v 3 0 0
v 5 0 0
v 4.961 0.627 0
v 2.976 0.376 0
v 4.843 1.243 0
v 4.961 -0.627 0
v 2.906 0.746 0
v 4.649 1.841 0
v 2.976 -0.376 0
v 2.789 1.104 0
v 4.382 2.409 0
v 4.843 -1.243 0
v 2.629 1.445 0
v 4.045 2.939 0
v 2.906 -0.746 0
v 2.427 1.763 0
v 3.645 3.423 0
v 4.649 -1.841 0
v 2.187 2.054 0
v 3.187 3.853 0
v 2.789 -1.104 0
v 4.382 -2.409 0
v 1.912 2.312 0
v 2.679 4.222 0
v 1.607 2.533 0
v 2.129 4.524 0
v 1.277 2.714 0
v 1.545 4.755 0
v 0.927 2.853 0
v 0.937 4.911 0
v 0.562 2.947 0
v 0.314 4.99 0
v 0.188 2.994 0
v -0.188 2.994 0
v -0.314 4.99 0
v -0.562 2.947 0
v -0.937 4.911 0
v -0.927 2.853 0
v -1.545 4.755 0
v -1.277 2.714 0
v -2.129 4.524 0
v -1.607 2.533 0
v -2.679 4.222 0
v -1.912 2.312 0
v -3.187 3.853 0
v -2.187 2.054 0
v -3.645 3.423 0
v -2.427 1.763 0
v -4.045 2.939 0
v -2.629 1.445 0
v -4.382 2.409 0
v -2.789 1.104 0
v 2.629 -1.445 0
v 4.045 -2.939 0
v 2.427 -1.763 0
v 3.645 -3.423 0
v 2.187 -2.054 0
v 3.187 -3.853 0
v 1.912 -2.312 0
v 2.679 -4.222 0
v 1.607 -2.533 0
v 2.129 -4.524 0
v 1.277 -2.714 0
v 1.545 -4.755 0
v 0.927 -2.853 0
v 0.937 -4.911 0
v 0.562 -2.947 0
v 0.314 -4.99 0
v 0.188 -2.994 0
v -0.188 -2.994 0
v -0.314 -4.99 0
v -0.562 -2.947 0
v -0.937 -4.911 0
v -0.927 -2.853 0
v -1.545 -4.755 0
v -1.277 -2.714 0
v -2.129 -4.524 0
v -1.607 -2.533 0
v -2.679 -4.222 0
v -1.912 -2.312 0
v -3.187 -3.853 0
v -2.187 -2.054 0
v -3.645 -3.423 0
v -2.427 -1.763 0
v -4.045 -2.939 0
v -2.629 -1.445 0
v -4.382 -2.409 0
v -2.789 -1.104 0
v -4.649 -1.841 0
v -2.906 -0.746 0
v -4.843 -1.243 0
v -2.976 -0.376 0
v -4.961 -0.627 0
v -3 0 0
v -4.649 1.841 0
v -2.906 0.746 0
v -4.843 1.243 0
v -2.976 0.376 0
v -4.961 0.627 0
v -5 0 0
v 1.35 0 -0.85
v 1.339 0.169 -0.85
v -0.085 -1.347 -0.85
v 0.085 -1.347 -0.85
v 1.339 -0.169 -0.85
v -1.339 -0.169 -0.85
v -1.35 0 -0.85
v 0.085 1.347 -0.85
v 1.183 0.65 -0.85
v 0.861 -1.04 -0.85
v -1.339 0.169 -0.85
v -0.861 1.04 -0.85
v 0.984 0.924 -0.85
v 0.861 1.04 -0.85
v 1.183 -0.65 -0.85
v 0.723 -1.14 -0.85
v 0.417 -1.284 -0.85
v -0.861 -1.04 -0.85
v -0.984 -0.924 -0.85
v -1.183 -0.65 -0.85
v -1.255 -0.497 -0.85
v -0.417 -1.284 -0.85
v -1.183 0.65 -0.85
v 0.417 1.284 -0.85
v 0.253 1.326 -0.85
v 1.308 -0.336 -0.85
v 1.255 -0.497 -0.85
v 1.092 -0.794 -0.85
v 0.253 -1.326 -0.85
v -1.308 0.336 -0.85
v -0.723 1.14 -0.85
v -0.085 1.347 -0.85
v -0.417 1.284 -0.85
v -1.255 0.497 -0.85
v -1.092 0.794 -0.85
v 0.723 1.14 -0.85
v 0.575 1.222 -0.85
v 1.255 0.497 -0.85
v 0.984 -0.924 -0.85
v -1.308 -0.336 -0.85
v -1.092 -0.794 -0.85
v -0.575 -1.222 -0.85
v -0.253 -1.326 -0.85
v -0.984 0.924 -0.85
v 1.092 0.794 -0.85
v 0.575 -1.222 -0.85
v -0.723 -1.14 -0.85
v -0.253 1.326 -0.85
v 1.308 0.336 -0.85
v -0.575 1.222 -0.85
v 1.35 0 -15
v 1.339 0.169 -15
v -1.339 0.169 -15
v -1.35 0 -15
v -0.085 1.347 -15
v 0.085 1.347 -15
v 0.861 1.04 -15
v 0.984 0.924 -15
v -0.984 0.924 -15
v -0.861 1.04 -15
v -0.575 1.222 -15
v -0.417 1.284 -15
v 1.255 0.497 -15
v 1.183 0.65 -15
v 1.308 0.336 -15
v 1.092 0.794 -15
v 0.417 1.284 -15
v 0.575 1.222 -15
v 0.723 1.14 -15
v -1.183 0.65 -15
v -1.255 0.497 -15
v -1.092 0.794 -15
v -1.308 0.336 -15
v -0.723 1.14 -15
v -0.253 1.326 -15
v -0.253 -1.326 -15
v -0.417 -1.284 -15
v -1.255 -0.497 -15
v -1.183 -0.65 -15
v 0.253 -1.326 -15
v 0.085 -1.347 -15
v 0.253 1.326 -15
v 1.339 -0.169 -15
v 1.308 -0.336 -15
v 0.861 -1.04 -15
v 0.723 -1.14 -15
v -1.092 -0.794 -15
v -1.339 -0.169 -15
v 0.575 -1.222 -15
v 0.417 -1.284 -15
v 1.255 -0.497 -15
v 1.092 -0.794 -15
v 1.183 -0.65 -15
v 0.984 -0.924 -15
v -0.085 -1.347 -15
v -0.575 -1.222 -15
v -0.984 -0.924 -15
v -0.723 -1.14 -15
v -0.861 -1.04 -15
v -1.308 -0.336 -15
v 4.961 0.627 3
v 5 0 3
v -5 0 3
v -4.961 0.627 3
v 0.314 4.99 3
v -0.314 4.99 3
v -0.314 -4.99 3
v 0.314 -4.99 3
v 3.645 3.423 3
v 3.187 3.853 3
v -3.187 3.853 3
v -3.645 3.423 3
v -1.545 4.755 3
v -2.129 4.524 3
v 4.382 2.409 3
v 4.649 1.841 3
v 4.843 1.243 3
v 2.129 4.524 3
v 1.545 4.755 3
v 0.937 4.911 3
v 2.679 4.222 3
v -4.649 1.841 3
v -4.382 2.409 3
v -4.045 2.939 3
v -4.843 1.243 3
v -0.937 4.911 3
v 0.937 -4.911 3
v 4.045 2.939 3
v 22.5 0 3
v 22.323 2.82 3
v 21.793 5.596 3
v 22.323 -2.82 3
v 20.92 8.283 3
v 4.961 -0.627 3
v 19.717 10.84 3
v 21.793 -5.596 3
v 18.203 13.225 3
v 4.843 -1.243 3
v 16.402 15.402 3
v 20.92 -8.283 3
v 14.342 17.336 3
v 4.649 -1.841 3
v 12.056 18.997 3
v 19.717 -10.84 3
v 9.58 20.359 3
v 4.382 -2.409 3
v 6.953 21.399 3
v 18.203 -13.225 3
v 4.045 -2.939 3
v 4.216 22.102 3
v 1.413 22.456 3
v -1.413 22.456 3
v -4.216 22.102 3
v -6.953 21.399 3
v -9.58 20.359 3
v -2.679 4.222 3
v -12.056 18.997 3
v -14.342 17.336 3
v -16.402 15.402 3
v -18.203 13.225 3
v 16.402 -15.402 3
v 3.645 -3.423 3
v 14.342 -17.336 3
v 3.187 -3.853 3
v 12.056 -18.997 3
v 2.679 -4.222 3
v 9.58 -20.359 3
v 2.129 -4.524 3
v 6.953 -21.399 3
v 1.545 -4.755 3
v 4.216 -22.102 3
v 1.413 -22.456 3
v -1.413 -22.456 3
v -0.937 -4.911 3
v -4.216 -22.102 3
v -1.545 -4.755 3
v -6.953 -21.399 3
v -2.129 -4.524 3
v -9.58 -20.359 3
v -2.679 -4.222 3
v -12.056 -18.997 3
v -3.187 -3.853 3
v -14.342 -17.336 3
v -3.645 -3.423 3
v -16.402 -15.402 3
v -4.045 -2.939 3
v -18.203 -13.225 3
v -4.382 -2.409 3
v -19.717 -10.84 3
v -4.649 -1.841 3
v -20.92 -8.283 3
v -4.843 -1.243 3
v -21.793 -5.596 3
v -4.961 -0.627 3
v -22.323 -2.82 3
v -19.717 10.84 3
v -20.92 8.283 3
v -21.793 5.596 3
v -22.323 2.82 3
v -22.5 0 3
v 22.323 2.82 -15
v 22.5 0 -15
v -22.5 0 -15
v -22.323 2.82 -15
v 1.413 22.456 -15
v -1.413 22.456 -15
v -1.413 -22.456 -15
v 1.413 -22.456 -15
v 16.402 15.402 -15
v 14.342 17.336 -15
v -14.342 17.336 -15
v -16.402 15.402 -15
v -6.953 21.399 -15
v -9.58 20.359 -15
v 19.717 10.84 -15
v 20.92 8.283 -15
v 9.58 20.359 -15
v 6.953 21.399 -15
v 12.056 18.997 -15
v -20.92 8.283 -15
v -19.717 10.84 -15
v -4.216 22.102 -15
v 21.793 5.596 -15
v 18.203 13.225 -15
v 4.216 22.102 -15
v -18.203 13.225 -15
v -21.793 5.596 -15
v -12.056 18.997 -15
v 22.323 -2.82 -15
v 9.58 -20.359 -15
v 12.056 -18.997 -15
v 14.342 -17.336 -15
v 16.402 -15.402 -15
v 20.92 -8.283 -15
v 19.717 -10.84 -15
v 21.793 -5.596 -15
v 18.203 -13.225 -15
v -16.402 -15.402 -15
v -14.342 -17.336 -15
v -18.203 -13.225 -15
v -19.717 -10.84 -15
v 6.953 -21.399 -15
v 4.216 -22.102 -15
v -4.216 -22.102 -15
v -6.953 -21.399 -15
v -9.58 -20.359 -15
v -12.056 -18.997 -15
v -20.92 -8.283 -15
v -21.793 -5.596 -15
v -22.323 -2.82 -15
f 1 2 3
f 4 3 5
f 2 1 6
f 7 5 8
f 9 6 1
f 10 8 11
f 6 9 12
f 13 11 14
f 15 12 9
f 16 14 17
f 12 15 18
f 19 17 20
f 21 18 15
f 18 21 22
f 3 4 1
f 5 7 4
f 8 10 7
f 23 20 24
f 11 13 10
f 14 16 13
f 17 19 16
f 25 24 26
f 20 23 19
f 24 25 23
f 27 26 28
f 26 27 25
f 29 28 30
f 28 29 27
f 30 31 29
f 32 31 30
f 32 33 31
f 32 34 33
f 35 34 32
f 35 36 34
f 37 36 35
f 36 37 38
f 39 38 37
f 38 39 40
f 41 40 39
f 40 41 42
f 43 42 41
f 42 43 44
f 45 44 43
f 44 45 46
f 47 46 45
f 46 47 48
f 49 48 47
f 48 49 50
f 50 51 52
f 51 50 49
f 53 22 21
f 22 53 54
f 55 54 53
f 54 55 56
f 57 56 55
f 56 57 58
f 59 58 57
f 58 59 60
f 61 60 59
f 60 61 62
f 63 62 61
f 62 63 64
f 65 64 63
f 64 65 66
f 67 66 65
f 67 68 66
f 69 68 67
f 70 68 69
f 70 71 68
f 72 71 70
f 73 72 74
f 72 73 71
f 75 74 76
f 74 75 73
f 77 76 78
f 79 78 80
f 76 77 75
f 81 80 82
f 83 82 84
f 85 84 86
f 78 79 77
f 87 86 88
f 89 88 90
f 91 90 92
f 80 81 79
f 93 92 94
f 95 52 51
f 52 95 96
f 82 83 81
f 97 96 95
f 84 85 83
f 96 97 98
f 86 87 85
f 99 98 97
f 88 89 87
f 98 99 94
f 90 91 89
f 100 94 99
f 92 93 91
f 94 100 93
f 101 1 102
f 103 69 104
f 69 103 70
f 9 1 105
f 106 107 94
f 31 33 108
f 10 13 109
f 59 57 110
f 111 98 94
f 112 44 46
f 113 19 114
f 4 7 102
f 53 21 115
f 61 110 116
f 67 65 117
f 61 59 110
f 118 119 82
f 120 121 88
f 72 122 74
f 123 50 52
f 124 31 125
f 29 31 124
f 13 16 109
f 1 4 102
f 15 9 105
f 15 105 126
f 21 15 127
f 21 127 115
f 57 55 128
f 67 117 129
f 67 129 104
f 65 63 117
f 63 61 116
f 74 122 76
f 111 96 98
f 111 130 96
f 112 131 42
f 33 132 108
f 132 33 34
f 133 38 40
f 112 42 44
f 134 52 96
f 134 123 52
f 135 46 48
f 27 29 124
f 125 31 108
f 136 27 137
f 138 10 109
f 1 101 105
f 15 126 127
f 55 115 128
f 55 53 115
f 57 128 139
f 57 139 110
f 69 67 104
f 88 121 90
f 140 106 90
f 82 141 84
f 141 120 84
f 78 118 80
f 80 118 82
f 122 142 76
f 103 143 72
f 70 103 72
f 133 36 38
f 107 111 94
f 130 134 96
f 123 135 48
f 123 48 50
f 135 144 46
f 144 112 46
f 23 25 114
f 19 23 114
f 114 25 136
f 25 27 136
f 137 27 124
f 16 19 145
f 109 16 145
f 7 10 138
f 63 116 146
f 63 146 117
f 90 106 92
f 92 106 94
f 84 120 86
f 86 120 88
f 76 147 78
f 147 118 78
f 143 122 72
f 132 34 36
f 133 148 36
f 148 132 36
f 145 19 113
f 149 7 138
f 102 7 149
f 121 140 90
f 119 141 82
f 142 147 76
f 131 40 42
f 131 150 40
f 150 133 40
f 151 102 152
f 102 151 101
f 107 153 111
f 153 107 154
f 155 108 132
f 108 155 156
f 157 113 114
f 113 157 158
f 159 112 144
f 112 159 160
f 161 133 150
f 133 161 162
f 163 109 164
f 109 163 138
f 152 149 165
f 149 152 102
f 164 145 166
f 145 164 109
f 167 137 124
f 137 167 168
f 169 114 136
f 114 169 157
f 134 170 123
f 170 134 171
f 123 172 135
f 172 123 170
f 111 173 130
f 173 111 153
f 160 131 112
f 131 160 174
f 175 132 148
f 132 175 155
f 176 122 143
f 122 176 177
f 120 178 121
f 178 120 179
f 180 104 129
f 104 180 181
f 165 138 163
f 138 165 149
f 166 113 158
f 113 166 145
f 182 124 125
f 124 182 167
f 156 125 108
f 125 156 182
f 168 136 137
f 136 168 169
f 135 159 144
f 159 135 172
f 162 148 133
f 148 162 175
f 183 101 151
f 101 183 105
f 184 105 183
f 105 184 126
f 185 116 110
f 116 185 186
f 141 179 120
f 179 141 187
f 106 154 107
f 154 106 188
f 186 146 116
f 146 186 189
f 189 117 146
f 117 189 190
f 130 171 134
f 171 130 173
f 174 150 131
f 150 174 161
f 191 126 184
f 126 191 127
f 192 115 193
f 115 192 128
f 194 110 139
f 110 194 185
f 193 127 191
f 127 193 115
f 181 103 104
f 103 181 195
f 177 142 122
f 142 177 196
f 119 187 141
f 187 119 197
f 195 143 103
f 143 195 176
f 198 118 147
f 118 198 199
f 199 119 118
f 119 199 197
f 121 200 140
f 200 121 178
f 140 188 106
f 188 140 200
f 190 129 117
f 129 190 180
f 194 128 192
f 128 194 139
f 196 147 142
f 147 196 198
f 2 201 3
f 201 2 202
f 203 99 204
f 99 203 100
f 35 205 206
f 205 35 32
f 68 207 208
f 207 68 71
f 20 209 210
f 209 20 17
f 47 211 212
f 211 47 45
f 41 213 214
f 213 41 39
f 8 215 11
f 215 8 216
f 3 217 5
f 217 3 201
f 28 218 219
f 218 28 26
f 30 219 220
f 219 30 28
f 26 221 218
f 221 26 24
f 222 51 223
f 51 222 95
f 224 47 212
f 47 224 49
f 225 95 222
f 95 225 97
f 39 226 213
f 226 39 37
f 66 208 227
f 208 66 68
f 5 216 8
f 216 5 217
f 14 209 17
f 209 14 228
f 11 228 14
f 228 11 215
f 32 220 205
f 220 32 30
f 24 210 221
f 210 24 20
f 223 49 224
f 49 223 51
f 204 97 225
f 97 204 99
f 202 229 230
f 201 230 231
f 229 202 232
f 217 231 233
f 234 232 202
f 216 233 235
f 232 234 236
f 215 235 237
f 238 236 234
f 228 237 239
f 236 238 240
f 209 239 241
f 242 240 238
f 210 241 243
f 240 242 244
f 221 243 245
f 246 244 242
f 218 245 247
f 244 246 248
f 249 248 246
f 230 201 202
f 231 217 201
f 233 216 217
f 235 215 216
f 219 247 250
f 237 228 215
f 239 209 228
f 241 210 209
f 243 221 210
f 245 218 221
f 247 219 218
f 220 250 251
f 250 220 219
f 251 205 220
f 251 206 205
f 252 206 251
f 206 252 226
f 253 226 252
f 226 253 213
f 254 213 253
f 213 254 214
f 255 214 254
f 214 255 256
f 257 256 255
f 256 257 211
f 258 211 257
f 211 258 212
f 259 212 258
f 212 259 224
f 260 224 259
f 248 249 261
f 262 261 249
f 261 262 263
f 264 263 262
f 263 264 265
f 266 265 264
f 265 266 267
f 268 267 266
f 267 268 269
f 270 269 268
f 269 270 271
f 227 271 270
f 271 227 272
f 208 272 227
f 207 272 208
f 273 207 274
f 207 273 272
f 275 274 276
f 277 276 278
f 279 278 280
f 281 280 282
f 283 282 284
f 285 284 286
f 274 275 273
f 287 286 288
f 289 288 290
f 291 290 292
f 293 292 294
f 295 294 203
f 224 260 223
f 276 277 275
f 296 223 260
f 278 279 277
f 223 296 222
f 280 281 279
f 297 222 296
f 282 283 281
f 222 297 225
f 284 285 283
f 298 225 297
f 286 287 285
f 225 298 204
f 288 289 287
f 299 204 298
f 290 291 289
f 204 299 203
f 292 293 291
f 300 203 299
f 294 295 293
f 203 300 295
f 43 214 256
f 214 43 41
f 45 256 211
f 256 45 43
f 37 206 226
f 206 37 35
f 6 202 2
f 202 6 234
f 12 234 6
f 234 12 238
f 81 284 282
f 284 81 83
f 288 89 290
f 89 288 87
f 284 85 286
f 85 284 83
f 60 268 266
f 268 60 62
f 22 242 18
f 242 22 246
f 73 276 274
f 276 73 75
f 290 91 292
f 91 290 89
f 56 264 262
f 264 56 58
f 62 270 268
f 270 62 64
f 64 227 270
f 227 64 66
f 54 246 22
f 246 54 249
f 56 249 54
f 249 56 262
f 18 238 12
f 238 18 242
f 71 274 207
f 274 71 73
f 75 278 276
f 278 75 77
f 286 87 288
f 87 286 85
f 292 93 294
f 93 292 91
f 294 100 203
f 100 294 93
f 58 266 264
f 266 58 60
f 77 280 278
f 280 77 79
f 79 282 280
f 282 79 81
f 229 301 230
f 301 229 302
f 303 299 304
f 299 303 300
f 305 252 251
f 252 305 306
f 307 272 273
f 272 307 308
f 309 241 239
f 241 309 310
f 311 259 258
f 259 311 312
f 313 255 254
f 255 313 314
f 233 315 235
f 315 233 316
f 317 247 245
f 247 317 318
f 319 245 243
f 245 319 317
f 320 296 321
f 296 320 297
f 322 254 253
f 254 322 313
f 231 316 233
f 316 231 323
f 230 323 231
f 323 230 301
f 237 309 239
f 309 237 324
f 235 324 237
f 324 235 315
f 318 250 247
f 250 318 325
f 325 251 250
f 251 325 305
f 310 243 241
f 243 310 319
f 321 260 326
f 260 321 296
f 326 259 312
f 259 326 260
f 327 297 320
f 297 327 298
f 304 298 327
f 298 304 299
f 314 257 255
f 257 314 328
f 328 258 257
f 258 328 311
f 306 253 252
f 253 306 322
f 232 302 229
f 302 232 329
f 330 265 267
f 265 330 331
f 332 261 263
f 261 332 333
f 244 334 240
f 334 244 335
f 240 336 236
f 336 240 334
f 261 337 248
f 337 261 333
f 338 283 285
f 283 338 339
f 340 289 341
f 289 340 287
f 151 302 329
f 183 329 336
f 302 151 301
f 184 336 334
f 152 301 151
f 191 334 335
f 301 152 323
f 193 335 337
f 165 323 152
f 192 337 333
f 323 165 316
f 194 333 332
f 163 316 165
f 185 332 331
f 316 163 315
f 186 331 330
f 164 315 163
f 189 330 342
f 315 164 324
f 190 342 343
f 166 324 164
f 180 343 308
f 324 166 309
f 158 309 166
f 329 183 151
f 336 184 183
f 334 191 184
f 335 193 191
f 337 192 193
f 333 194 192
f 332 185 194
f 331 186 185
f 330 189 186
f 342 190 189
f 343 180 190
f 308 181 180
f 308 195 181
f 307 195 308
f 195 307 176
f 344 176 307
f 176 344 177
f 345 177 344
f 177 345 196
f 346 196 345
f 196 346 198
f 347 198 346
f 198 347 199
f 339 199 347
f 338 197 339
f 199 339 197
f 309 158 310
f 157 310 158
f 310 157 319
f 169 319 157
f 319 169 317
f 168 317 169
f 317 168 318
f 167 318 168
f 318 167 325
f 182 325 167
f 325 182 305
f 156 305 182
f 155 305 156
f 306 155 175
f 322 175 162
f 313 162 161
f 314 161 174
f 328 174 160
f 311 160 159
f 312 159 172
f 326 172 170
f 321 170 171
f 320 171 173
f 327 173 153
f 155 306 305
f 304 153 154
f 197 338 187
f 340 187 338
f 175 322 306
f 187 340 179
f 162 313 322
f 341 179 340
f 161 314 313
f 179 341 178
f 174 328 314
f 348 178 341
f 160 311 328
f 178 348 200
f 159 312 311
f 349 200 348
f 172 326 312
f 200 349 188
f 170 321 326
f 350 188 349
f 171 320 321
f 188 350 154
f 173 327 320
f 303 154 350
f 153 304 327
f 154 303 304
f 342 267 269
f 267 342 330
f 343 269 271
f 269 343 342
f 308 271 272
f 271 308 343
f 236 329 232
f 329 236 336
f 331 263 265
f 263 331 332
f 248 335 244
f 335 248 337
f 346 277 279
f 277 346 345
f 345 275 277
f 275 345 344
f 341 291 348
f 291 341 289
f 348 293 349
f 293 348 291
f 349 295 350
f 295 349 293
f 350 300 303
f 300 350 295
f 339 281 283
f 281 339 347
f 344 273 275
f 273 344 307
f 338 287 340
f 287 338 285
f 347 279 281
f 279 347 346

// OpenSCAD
$fn = 50;

difference() {
	union() {
		translate(v = [0, 0, -15.0]) {
			cylinder(h = 18, r = 22.5);
		}
	}
	union() {
		translate(v = [0, 0, 0]) {
			rotate(a = [0, 0, 0]) {
				difference() {
					union() {
						translate(v = [0, 0, -18.0]) {
							cylinder(h = 18, r = 1.0);
						}
						translate(v = [0, 0, -0.85]) {
							cylinder(h = 0.85, r1 = 1.35, r2 = 3.0);
						}
						translate(v = [0, 0, -18.0]) {
							cylinder(h = 18, r = 1.35);
						}
						translate(v = [0, 0, -18.0]) {
							cylinder(h = 18, r = 1.0);
						}
					}
					union();
				}
			}
		}
		#cylinder(h = 3, r = 5.0);
	}
}
